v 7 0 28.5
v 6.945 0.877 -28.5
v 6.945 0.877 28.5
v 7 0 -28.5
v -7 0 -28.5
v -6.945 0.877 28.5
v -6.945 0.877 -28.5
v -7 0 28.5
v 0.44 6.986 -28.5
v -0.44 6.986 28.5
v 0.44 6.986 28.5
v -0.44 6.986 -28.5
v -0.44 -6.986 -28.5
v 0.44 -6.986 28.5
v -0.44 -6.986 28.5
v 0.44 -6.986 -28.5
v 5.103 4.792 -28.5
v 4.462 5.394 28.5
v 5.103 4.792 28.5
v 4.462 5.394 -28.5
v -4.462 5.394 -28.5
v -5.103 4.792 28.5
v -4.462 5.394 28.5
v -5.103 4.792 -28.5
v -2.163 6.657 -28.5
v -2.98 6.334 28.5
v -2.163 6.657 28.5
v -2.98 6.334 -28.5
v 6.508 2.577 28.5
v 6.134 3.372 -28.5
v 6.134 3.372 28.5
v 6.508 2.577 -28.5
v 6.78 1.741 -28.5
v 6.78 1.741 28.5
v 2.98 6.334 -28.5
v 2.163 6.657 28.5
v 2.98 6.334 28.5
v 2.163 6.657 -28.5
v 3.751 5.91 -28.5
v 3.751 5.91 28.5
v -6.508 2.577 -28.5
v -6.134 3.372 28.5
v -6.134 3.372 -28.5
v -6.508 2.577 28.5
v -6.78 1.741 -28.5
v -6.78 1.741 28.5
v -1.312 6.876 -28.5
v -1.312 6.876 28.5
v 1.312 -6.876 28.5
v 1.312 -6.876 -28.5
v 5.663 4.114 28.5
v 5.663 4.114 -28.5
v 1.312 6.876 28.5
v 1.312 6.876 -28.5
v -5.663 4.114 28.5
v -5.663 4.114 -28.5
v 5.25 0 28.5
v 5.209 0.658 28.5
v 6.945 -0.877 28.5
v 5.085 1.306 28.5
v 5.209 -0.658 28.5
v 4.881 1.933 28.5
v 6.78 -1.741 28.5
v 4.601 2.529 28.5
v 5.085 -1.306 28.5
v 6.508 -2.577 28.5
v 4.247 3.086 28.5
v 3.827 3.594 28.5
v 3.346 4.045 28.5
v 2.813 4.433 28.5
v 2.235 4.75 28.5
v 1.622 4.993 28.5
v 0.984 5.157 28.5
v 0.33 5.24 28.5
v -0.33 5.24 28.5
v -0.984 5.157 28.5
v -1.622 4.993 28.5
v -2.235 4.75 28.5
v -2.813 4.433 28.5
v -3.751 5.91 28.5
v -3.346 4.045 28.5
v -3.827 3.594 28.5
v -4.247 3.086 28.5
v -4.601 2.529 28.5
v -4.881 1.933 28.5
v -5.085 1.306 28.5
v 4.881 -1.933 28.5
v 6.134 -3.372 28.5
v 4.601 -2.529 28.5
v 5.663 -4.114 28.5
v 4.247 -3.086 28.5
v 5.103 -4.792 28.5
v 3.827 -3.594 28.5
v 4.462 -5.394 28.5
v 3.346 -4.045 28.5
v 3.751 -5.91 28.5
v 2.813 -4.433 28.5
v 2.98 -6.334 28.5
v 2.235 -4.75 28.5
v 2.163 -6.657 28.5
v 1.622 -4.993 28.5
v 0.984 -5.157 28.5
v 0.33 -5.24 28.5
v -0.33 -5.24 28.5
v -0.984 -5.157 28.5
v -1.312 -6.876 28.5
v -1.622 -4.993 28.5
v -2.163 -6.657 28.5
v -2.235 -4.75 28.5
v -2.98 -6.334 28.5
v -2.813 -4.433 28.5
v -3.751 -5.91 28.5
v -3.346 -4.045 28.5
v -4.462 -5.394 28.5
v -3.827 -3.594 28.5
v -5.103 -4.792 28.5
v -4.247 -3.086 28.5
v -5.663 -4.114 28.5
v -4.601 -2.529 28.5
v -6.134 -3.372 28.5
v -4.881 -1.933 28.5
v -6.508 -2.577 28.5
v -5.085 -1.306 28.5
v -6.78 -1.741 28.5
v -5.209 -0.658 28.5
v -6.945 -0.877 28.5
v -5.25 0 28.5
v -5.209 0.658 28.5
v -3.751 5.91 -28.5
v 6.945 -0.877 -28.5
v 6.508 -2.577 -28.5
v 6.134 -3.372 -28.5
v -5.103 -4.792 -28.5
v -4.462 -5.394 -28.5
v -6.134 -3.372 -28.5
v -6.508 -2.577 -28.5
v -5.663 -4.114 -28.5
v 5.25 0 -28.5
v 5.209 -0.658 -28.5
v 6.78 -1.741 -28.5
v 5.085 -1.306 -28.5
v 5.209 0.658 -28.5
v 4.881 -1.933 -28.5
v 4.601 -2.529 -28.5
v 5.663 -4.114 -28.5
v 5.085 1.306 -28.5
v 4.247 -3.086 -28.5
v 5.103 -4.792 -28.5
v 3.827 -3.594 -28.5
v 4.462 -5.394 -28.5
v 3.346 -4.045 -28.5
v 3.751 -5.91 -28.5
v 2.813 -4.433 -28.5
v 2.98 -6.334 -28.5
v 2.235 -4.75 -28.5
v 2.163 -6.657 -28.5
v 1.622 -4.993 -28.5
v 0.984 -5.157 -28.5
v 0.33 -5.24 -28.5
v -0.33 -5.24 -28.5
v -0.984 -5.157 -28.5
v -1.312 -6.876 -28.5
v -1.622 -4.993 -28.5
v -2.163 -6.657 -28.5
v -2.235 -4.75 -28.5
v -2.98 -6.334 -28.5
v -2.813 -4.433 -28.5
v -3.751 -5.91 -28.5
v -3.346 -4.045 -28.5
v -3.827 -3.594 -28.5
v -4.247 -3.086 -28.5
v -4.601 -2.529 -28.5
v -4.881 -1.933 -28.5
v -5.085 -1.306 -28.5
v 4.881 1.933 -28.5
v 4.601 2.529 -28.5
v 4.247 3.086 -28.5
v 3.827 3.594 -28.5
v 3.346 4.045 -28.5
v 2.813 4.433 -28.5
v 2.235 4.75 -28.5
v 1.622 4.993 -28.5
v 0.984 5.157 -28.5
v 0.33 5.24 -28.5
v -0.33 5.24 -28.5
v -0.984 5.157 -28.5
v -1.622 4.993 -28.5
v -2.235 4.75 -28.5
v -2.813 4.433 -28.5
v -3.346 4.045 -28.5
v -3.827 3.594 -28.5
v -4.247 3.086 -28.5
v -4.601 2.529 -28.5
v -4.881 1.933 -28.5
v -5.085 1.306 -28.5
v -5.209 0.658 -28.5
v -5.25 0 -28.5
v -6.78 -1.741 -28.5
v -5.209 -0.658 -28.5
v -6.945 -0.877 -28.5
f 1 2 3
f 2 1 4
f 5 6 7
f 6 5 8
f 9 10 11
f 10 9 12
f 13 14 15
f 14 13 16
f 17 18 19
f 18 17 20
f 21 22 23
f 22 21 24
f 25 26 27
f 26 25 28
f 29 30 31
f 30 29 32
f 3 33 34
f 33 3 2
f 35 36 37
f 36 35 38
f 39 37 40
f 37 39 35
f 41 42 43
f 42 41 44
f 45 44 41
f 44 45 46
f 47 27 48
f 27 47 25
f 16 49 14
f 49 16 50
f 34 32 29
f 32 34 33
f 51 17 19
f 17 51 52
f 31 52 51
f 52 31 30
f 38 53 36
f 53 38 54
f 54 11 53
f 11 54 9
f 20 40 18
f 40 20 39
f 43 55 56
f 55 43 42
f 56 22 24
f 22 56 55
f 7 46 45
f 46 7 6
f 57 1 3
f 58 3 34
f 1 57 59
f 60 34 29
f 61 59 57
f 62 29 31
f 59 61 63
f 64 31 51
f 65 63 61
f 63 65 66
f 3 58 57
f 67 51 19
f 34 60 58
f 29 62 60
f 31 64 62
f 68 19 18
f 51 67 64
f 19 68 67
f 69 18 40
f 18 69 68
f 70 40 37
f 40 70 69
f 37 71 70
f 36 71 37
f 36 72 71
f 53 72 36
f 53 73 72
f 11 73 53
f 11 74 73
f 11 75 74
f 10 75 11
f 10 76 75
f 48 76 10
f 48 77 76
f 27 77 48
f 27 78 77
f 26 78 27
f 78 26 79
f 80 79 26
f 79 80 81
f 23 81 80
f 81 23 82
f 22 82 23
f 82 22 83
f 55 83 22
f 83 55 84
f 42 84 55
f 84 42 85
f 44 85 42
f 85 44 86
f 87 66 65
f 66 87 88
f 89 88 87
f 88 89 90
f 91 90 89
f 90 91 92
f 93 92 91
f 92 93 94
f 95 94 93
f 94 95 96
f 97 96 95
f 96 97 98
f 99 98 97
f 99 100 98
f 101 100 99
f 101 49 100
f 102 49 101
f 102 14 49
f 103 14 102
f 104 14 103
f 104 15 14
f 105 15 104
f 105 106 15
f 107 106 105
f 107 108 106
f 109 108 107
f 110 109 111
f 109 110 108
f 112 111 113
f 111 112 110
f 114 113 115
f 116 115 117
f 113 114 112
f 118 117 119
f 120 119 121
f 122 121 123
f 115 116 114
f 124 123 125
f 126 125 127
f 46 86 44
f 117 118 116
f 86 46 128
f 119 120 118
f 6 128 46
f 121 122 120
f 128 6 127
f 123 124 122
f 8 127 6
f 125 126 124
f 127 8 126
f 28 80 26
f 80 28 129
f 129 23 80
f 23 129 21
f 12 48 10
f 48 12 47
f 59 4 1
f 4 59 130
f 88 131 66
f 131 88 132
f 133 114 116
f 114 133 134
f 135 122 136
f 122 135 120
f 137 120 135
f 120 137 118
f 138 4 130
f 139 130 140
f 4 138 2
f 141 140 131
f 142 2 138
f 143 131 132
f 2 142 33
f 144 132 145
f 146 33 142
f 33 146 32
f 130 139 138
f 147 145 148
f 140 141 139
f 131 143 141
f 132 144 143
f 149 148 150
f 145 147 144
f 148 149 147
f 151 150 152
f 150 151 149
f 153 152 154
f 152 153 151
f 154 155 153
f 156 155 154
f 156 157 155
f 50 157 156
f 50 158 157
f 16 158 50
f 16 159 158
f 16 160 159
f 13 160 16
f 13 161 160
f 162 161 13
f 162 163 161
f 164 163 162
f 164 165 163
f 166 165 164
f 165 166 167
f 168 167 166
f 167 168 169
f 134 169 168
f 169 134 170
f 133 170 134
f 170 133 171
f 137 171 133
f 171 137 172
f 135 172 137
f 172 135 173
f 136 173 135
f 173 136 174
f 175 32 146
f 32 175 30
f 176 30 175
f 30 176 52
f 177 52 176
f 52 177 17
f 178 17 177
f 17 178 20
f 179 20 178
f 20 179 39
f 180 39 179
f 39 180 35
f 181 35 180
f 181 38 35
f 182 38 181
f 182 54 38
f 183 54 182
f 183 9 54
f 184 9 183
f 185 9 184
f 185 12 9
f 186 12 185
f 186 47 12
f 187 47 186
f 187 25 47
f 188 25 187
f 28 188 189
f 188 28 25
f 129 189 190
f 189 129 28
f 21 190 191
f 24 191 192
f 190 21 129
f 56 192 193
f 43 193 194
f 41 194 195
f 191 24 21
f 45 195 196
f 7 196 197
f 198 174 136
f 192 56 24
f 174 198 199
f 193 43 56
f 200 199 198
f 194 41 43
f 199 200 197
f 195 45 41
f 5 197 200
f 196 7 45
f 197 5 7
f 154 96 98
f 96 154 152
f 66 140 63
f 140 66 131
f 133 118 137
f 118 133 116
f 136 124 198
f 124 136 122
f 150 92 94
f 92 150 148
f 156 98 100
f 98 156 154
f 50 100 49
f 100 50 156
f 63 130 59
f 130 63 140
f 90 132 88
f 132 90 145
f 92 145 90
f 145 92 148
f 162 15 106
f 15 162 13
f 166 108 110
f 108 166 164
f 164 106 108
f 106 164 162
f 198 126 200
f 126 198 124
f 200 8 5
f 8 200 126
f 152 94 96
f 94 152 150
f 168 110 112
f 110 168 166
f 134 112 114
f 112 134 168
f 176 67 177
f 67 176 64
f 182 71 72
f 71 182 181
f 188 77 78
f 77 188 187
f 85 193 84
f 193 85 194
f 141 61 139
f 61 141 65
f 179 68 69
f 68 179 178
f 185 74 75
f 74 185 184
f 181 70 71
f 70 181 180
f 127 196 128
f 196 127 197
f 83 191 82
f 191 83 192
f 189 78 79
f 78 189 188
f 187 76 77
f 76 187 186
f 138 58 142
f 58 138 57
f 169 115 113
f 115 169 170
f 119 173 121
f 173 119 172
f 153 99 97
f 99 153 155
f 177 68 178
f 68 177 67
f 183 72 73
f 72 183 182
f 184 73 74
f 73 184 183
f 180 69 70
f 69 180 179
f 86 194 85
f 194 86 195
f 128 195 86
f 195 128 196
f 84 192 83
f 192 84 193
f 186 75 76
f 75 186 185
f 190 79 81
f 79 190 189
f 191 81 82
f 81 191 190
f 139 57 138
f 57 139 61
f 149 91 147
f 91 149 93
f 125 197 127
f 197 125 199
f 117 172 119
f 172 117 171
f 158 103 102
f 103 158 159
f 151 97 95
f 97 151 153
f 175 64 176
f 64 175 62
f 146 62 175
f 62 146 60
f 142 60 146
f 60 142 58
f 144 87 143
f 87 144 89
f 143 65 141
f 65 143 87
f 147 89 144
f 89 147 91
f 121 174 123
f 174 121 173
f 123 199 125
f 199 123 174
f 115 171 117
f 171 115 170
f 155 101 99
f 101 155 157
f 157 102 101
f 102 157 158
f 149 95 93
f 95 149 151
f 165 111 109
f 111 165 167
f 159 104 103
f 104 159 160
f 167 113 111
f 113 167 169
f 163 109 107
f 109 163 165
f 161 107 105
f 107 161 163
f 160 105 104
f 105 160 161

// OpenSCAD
$fn = 50;


difference() {
	union() {
		translate(v = [0, 0, -28.5000000000]) {
			cylinder(h = 57, r = 7.0000000000);
		}
	}
	union() {
		translate(v = [0, 0, -100.0000000000]) {
			cylinder(h = 200, r = 5.2500000000);
		}
	}
}
